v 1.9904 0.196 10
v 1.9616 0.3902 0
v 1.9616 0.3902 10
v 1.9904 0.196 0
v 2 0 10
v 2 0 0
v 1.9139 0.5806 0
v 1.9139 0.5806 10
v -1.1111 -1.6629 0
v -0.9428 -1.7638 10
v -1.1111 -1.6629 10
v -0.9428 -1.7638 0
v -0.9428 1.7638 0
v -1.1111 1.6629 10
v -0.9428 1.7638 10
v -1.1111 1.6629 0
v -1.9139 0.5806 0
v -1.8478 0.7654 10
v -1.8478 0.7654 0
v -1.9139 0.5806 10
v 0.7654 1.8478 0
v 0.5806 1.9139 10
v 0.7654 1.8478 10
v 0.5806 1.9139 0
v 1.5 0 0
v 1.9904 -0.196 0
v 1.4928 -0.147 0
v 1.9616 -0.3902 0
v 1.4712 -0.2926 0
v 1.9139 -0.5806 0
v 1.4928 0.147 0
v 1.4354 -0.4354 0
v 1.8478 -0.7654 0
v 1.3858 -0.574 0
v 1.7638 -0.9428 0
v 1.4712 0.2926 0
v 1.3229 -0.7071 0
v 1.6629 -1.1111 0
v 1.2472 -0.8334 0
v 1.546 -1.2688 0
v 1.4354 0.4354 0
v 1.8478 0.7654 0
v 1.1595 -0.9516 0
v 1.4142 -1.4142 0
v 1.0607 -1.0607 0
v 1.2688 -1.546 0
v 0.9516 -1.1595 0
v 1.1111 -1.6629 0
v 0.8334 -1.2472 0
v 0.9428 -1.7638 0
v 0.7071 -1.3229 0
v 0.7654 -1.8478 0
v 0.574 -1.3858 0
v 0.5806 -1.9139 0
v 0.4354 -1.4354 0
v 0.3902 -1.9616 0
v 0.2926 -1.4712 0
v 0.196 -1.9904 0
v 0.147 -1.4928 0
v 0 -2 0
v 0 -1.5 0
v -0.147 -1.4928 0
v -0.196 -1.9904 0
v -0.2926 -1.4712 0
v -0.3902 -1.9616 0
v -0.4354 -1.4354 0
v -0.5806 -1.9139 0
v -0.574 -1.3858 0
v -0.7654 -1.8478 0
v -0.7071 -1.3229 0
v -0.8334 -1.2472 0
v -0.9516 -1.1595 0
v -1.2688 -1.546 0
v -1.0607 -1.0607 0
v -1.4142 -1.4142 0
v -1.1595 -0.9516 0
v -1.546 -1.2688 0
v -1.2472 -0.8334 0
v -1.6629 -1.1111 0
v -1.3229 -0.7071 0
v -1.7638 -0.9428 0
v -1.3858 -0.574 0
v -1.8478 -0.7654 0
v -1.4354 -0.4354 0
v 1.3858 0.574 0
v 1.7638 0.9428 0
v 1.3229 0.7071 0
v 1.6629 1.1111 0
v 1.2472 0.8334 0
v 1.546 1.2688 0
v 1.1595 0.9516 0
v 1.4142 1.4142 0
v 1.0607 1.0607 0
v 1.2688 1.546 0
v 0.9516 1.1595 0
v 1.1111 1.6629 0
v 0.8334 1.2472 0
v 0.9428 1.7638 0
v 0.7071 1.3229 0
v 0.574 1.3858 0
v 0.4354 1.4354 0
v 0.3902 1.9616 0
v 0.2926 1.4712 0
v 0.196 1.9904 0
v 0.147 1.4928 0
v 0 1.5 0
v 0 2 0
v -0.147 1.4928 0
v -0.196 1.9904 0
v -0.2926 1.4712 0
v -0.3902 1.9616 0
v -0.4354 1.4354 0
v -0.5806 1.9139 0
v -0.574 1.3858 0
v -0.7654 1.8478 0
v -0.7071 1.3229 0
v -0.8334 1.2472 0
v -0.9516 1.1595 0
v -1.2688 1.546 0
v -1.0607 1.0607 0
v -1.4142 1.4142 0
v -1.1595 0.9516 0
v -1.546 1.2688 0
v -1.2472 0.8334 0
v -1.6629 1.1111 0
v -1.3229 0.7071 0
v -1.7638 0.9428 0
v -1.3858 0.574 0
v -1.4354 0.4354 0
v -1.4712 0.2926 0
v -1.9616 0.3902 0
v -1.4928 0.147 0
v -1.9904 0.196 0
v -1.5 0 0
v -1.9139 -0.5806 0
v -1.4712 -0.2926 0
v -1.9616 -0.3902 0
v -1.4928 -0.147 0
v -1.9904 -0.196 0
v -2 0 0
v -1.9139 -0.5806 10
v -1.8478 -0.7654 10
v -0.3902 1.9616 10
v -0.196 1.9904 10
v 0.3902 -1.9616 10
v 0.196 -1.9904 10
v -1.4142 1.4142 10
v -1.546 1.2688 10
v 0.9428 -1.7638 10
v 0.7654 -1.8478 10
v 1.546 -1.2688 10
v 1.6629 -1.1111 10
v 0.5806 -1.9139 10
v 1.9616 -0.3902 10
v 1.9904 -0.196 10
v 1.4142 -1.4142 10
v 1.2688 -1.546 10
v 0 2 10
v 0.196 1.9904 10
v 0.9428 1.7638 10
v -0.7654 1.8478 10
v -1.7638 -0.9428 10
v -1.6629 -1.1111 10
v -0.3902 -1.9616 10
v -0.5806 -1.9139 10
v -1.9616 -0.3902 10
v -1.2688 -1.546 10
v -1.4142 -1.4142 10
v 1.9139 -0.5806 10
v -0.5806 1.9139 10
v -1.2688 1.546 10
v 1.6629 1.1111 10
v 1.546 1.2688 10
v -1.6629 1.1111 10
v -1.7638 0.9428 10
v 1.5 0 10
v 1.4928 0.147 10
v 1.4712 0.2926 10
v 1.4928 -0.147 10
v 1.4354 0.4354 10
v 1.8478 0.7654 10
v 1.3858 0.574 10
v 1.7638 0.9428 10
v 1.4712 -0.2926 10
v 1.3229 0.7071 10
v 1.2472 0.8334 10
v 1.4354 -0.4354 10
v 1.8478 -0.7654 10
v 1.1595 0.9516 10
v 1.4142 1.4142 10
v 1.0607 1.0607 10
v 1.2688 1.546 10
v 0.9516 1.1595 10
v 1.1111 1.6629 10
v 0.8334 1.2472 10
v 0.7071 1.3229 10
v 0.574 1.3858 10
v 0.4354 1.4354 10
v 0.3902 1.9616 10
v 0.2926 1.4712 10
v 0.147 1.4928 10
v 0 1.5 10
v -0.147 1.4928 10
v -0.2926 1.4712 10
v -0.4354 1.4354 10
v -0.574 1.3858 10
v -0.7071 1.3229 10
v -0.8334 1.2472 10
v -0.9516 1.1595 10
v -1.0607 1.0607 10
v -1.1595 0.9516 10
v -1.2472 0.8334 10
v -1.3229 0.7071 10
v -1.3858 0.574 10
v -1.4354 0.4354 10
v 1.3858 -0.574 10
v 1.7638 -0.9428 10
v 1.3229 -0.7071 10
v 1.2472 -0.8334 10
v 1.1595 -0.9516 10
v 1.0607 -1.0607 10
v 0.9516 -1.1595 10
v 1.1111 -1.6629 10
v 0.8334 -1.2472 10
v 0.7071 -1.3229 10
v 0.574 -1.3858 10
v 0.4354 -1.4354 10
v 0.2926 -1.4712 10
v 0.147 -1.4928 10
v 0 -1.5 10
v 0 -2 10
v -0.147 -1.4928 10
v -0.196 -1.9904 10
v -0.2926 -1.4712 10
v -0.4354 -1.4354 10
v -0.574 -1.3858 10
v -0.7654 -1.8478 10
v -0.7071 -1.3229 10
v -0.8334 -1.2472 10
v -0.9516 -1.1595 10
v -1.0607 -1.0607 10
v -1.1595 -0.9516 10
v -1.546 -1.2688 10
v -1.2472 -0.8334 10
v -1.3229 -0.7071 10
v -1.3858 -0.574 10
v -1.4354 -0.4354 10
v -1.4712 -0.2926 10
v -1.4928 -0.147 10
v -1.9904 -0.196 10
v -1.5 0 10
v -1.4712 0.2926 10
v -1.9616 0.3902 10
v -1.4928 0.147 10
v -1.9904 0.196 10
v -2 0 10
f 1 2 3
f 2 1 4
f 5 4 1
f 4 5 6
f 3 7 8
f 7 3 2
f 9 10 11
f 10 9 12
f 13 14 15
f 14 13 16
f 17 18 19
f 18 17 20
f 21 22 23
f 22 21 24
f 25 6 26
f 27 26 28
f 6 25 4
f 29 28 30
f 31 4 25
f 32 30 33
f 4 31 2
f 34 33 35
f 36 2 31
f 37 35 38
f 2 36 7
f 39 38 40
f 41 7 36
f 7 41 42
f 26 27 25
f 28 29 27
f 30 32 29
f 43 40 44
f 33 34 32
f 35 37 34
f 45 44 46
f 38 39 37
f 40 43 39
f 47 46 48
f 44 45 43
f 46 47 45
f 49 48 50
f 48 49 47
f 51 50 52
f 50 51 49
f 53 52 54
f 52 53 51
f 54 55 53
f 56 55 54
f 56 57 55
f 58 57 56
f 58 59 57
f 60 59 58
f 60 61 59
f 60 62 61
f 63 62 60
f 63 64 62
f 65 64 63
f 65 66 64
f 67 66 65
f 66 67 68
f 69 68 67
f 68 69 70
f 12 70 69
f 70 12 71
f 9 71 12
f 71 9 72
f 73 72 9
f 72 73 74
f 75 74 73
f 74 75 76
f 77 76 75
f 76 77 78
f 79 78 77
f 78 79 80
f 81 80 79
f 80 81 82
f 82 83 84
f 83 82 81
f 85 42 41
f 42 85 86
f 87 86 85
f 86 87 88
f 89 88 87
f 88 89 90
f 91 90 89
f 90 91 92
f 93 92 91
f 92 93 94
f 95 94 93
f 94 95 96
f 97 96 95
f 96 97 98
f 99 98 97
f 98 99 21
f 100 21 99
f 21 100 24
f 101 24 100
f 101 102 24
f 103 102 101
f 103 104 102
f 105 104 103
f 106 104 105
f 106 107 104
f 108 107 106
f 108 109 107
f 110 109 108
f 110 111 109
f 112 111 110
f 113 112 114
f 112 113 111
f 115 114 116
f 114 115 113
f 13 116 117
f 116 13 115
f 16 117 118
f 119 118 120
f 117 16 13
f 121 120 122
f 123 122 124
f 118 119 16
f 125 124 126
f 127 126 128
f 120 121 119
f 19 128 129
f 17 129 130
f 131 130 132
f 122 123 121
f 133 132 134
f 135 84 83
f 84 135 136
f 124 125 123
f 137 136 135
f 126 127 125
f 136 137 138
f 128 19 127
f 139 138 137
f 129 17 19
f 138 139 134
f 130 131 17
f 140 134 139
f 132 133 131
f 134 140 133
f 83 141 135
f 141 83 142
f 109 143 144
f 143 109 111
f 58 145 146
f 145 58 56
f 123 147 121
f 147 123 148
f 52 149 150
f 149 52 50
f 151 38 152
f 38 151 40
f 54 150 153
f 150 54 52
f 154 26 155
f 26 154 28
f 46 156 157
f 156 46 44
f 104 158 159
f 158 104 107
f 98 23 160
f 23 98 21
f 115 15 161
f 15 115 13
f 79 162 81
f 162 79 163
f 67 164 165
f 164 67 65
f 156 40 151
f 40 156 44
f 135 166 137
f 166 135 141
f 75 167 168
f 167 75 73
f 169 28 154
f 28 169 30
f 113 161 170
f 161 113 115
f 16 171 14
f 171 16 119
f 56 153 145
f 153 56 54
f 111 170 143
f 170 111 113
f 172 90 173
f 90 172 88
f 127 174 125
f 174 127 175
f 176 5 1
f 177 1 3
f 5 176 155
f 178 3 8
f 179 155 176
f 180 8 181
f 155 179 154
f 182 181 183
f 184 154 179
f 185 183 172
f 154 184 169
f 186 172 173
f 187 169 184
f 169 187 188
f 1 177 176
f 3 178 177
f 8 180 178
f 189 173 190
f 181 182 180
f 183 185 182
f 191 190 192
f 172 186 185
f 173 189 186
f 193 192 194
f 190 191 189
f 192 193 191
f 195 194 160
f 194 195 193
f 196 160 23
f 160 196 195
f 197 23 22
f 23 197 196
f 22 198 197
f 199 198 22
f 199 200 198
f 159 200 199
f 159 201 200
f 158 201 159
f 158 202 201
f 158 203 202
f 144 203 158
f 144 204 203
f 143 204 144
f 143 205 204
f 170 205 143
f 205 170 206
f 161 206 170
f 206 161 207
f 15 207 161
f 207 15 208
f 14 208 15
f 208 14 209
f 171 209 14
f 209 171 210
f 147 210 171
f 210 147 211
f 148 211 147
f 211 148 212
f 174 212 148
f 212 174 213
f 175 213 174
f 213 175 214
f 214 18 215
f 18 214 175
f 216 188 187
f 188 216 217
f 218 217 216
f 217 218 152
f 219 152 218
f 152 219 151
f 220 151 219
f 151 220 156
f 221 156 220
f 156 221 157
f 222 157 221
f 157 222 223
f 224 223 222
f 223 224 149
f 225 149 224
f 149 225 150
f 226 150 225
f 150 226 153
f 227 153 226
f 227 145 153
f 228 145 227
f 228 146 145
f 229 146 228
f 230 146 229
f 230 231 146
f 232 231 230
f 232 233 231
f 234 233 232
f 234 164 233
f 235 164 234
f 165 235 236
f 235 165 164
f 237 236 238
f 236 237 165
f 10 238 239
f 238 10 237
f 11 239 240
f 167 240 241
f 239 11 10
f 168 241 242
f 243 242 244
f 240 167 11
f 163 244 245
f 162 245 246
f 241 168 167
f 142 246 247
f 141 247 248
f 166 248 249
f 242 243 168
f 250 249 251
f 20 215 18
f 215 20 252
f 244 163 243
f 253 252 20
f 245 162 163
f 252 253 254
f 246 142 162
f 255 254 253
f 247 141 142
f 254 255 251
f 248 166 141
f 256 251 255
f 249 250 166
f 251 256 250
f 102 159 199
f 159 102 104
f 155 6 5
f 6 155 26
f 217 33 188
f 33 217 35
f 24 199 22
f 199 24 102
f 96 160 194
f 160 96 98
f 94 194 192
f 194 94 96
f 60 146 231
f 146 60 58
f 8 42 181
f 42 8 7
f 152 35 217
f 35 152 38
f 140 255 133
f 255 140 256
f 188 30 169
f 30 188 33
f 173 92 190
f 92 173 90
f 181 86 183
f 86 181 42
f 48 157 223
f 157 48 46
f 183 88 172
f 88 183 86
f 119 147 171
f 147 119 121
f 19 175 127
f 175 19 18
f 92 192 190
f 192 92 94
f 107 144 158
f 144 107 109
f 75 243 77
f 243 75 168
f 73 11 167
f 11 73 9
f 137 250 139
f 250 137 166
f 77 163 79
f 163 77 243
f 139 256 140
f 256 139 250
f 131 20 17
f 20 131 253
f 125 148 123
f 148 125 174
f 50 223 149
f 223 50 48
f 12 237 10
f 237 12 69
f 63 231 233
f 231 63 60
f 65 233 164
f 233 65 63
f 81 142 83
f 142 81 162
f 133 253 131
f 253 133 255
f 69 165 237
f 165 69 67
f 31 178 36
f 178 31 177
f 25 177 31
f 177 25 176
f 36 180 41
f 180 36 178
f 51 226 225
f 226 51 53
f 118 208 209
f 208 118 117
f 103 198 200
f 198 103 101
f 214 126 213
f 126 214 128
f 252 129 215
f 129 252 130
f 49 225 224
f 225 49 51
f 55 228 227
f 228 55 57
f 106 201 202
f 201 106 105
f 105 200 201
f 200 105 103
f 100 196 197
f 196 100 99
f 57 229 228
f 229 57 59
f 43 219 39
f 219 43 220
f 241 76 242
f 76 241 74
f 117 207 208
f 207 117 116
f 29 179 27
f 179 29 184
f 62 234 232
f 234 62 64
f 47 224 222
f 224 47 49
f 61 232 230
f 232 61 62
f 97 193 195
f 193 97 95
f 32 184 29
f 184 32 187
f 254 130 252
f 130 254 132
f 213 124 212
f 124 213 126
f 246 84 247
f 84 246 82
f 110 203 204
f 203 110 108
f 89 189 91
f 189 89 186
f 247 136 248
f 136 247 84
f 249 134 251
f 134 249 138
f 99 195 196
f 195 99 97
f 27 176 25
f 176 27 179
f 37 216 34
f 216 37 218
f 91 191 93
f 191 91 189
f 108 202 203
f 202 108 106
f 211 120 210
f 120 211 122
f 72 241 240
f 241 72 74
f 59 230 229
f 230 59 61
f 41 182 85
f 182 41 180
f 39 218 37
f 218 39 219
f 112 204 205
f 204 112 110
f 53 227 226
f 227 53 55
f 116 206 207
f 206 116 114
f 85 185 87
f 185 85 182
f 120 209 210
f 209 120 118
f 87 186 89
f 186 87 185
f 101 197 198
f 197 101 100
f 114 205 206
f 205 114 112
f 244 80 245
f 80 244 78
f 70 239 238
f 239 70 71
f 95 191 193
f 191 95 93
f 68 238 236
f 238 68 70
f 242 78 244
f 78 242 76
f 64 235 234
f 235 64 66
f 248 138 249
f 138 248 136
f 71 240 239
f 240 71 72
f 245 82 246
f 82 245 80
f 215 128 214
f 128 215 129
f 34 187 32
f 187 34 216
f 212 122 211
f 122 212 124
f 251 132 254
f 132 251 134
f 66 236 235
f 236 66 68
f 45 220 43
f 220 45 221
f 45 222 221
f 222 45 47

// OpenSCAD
// Level parameters
level_height = 10;
level_width = 50;
level_depth = 20;
level_radius = 2;

difference() {
  // Main level body
  cylinder(h = level_height, r = level_radius, $fn = 64);

  // Rim
  translate([0,0,-level_depth/2])
  cylinder(h = level_height, r = level_radius, $fn = 64);

  // Center hole
  translate([0,0,0])
  cylinder(h = level_height, r = level_radius * 0.75, $fn = 64);
}
